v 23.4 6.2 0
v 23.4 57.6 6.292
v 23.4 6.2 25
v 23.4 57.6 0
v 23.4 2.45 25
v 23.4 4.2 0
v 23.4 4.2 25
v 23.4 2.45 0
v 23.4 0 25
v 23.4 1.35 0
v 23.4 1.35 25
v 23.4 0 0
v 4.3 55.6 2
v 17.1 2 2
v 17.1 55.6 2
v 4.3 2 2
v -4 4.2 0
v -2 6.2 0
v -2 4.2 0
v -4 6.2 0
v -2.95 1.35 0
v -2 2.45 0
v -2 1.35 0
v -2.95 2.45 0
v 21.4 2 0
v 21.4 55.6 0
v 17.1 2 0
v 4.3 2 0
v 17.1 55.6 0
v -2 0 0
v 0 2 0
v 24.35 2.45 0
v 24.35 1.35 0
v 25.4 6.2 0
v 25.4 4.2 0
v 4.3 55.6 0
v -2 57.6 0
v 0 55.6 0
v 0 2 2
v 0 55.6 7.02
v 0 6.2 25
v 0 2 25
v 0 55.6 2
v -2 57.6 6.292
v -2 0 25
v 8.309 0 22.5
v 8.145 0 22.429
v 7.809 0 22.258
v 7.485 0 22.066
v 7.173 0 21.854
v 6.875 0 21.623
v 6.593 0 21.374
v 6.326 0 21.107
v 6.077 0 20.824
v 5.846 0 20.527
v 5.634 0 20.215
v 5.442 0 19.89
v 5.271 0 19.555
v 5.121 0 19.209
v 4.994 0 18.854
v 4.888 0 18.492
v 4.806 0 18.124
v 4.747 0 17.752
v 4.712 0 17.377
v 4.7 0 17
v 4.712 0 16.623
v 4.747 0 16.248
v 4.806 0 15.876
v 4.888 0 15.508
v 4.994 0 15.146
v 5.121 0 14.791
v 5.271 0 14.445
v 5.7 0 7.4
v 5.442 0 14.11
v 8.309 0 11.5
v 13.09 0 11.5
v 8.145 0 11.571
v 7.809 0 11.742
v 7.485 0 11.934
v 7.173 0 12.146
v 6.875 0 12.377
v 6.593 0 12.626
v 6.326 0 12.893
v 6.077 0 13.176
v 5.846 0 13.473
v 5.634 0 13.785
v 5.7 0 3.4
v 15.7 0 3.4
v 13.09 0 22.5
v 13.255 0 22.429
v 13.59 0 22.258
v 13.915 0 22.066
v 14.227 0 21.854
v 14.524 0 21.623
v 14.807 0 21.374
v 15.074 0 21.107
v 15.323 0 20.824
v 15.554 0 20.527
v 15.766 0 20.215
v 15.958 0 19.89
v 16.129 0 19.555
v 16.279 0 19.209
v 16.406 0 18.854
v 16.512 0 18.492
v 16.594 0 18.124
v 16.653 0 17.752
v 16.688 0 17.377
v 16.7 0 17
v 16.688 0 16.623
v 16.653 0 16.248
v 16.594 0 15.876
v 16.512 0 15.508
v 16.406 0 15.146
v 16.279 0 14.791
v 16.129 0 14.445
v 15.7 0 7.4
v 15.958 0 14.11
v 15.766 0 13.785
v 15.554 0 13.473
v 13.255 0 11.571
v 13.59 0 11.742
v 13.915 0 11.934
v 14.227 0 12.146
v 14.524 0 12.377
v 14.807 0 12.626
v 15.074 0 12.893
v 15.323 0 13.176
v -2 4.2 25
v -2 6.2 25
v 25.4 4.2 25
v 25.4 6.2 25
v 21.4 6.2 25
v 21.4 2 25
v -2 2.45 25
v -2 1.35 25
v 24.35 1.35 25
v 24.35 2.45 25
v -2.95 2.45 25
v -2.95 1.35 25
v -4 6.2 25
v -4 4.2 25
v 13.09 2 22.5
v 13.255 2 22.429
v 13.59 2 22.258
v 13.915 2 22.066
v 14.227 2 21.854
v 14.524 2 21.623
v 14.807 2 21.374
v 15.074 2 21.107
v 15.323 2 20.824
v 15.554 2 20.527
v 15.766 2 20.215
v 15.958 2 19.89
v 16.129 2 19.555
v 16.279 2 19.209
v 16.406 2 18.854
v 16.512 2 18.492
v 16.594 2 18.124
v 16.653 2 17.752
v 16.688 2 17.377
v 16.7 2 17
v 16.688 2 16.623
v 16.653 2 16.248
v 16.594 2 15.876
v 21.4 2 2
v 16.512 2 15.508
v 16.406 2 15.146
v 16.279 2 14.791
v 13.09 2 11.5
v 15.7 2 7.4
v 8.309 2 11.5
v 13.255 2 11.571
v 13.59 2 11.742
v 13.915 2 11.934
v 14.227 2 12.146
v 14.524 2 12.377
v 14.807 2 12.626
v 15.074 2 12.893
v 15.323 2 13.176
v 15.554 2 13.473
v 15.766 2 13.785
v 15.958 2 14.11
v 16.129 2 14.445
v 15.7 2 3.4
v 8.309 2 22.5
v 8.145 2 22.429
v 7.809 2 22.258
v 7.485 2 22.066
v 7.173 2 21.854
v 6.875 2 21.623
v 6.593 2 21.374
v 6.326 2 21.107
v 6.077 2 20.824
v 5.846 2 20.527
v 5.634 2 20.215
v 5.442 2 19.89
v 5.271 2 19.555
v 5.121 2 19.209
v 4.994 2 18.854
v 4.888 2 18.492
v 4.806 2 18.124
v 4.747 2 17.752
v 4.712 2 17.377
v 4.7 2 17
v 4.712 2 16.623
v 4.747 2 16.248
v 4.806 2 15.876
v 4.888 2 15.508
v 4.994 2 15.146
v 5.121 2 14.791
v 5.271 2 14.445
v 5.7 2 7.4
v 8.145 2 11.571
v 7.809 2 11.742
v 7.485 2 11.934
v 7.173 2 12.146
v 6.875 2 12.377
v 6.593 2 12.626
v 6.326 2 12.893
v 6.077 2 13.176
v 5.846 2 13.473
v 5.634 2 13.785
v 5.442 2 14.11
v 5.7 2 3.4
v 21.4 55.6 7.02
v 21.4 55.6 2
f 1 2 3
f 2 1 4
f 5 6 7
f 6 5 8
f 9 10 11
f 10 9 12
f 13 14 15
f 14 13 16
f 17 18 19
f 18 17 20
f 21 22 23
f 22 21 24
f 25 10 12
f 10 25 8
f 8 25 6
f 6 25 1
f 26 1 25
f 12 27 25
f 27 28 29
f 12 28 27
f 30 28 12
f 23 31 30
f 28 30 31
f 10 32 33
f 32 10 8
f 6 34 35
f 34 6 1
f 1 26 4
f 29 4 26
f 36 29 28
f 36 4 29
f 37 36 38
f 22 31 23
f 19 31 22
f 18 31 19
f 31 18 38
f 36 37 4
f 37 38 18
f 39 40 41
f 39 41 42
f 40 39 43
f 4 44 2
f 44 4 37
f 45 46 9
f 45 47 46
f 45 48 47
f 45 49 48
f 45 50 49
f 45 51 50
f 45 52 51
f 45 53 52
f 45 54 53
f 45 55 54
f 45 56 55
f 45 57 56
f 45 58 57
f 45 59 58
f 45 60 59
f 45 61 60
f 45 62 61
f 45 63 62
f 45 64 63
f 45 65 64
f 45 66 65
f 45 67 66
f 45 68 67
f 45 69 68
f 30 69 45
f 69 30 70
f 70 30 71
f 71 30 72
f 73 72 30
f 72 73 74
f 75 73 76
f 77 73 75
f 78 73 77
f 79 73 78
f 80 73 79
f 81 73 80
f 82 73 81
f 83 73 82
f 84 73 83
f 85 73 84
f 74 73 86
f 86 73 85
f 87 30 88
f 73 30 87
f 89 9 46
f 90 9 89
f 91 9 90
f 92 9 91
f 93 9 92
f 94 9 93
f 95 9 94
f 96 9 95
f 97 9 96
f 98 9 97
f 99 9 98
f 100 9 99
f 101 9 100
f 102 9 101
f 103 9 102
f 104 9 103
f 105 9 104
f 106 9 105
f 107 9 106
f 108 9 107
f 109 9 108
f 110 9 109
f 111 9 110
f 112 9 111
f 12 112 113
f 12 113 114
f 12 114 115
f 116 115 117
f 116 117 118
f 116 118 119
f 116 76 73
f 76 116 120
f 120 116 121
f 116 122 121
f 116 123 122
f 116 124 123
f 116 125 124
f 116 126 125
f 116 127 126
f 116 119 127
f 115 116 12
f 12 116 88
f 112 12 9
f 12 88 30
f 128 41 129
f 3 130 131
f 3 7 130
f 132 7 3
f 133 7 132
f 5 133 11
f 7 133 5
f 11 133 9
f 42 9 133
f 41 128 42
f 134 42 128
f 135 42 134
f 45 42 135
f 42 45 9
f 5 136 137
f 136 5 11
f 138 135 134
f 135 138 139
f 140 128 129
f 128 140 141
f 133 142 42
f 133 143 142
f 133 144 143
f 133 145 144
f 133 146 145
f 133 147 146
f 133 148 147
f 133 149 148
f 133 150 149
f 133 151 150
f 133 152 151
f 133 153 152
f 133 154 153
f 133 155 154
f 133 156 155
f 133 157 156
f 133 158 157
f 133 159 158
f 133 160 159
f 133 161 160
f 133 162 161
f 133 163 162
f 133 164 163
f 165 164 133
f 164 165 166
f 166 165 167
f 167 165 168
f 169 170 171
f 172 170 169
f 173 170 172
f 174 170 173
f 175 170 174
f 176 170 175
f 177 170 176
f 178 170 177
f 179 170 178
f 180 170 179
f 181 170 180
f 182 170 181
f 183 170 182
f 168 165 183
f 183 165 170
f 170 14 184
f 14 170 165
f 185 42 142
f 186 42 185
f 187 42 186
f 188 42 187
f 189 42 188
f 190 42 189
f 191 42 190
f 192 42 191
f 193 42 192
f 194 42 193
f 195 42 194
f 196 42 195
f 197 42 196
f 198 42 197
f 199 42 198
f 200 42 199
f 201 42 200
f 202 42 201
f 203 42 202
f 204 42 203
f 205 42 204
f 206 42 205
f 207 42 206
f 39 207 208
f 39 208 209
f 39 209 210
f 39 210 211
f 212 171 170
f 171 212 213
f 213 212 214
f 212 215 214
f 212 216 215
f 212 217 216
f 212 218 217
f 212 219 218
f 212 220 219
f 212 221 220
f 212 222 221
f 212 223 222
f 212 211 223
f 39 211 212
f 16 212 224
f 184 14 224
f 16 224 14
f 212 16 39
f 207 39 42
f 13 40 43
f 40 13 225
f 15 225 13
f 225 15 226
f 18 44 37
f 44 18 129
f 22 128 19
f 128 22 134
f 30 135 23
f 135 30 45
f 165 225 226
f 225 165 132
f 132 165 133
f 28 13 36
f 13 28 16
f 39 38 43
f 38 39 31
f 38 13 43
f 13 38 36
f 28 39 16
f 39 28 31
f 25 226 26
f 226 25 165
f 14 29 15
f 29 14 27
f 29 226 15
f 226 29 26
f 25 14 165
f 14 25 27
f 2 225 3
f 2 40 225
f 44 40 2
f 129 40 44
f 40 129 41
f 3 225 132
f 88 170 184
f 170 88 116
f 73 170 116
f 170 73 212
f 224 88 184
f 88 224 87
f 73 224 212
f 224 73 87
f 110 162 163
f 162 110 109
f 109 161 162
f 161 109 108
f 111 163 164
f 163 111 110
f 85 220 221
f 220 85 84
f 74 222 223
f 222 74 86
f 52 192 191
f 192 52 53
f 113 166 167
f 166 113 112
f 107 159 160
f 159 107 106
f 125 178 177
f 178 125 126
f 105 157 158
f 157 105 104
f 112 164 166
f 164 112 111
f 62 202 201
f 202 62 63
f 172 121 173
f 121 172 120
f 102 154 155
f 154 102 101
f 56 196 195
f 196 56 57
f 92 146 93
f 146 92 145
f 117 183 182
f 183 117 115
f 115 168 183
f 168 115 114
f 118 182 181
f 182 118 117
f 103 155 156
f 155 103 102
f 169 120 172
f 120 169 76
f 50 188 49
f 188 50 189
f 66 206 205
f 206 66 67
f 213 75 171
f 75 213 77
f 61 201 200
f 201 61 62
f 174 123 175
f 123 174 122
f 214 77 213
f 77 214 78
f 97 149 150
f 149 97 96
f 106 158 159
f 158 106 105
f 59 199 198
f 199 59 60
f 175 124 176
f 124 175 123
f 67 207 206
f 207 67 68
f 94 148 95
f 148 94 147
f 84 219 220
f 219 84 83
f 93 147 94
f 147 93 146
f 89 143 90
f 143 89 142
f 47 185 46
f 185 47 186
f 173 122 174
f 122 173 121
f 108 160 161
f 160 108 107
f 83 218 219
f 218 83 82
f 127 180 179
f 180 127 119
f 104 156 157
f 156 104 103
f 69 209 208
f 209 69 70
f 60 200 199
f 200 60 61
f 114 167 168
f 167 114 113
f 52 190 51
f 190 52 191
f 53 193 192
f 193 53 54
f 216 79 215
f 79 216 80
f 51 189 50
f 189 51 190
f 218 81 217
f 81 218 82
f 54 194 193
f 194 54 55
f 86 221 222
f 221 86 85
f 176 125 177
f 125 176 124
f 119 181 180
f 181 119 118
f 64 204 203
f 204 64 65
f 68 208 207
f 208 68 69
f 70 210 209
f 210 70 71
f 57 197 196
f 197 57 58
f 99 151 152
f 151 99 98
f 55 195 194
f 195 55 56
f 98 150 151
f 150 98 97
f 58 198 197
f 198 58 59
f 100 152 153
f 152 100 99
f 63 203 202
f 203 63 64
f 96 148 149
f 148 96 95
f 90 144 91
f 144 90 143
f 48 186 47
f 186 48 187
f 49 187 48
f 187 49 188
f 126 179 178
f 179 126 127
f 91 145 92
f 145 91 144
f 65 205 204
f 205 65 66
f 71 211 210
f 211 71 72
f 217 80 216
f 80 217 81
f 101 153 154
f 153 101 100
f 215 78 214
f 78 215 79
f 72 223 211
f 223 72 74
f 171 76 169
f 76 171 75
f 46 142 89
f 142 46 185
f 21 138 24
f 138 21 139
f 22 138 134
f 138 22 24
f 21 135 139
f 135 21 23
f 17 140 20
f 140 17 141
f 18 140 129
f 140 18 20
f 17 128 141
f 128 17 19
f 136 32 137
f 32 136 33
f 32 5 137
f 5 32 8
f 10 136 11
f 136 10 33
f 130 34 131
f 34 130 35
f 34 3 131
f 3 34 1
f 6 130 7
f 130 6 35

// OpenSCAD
mcu_width=21.4;
mcu_depth=53.6;
tray_height=25;
pcb_height=1.6;
wall_thickness=2;
solder_cutout=4.3;
usb_conn_width=10;
usb_conn_height=4;
notch_offset=1.35;
notch_width=0.95;
notch_depth=1.1;
hold_tab_offset=4.2;
hold_tab_width=wall_thickness;
hold_tab_depth=wall_thickness;
union(){
difference(){
union(){
cube([mcu_width+wall_thickness,mcu_depth+2*wall_thickness,wall_thickness]);
cube([mcu_width+wall_thickness,wall_thickness,tray_height]);
translate([0,mcu_depth+wall_thickness,0])cube([mcu_width+wall_thickness,wall_thickness,tray_height]);
translate([-wall_thickness,0,0])cube([wall_thickness,mcu_depth+2*wall_thickness,tray_height]);
translate([mcu_width,0,0])cube([wall_thickness,mcu_depth+2*wall_thickness,tray_height]);
}
translate([0,wall_thickness,0])cube([solder_cutout,mcu_depth,wall_thickness]);
translate([mcu_width-solder_cutout,wall_thickness,0])cube([solder_cutout,mcu_depth,wall_thickness]);
translate([-wall_thickness,hold_tab_offset+hold_tab_depth,tray_height])rotate([-20,0,0])cube([mcu_width+2*wall_thickness,mcu_depth+2*wall_thickness,20]);
translate([mcu_width/2-usb_conn_width/2,0,wall_thickness+pcb_height-0.2])cube([usb_conn_width,wall_thickness,usb_conn_height]);
translate([mcu_width/2,0,17])rotate([-90,0,0])cylinder(wall_thickness,d=12,$fn=100);
}
translate([mcu_width/2-12/2,0,17-6])cube([12,wall_thickness,0.5]);
translate([mcu_width/2-12/2,0,17+5.5])cube([12,wall_thickness,0.5]);
translate([-wall_thickness-notch_width,notch_offset,0])cube([notch_width,notch_depth,tray_height]);
translate([-wall_thickness-hold_tab_width,hold_tab_offset,0])cube([hold_tab_width,hold_tab_depth,tray_height]);
translate([wall_thickness+mcu_width,notch_offset,0])cube([notch_width,notch_depth,tray_height]);
translate([wall_thickness+mcu_width,hold_tab_offset,0])cube([hold_tab_width,hold_tab_depth,tray_height]);
}
